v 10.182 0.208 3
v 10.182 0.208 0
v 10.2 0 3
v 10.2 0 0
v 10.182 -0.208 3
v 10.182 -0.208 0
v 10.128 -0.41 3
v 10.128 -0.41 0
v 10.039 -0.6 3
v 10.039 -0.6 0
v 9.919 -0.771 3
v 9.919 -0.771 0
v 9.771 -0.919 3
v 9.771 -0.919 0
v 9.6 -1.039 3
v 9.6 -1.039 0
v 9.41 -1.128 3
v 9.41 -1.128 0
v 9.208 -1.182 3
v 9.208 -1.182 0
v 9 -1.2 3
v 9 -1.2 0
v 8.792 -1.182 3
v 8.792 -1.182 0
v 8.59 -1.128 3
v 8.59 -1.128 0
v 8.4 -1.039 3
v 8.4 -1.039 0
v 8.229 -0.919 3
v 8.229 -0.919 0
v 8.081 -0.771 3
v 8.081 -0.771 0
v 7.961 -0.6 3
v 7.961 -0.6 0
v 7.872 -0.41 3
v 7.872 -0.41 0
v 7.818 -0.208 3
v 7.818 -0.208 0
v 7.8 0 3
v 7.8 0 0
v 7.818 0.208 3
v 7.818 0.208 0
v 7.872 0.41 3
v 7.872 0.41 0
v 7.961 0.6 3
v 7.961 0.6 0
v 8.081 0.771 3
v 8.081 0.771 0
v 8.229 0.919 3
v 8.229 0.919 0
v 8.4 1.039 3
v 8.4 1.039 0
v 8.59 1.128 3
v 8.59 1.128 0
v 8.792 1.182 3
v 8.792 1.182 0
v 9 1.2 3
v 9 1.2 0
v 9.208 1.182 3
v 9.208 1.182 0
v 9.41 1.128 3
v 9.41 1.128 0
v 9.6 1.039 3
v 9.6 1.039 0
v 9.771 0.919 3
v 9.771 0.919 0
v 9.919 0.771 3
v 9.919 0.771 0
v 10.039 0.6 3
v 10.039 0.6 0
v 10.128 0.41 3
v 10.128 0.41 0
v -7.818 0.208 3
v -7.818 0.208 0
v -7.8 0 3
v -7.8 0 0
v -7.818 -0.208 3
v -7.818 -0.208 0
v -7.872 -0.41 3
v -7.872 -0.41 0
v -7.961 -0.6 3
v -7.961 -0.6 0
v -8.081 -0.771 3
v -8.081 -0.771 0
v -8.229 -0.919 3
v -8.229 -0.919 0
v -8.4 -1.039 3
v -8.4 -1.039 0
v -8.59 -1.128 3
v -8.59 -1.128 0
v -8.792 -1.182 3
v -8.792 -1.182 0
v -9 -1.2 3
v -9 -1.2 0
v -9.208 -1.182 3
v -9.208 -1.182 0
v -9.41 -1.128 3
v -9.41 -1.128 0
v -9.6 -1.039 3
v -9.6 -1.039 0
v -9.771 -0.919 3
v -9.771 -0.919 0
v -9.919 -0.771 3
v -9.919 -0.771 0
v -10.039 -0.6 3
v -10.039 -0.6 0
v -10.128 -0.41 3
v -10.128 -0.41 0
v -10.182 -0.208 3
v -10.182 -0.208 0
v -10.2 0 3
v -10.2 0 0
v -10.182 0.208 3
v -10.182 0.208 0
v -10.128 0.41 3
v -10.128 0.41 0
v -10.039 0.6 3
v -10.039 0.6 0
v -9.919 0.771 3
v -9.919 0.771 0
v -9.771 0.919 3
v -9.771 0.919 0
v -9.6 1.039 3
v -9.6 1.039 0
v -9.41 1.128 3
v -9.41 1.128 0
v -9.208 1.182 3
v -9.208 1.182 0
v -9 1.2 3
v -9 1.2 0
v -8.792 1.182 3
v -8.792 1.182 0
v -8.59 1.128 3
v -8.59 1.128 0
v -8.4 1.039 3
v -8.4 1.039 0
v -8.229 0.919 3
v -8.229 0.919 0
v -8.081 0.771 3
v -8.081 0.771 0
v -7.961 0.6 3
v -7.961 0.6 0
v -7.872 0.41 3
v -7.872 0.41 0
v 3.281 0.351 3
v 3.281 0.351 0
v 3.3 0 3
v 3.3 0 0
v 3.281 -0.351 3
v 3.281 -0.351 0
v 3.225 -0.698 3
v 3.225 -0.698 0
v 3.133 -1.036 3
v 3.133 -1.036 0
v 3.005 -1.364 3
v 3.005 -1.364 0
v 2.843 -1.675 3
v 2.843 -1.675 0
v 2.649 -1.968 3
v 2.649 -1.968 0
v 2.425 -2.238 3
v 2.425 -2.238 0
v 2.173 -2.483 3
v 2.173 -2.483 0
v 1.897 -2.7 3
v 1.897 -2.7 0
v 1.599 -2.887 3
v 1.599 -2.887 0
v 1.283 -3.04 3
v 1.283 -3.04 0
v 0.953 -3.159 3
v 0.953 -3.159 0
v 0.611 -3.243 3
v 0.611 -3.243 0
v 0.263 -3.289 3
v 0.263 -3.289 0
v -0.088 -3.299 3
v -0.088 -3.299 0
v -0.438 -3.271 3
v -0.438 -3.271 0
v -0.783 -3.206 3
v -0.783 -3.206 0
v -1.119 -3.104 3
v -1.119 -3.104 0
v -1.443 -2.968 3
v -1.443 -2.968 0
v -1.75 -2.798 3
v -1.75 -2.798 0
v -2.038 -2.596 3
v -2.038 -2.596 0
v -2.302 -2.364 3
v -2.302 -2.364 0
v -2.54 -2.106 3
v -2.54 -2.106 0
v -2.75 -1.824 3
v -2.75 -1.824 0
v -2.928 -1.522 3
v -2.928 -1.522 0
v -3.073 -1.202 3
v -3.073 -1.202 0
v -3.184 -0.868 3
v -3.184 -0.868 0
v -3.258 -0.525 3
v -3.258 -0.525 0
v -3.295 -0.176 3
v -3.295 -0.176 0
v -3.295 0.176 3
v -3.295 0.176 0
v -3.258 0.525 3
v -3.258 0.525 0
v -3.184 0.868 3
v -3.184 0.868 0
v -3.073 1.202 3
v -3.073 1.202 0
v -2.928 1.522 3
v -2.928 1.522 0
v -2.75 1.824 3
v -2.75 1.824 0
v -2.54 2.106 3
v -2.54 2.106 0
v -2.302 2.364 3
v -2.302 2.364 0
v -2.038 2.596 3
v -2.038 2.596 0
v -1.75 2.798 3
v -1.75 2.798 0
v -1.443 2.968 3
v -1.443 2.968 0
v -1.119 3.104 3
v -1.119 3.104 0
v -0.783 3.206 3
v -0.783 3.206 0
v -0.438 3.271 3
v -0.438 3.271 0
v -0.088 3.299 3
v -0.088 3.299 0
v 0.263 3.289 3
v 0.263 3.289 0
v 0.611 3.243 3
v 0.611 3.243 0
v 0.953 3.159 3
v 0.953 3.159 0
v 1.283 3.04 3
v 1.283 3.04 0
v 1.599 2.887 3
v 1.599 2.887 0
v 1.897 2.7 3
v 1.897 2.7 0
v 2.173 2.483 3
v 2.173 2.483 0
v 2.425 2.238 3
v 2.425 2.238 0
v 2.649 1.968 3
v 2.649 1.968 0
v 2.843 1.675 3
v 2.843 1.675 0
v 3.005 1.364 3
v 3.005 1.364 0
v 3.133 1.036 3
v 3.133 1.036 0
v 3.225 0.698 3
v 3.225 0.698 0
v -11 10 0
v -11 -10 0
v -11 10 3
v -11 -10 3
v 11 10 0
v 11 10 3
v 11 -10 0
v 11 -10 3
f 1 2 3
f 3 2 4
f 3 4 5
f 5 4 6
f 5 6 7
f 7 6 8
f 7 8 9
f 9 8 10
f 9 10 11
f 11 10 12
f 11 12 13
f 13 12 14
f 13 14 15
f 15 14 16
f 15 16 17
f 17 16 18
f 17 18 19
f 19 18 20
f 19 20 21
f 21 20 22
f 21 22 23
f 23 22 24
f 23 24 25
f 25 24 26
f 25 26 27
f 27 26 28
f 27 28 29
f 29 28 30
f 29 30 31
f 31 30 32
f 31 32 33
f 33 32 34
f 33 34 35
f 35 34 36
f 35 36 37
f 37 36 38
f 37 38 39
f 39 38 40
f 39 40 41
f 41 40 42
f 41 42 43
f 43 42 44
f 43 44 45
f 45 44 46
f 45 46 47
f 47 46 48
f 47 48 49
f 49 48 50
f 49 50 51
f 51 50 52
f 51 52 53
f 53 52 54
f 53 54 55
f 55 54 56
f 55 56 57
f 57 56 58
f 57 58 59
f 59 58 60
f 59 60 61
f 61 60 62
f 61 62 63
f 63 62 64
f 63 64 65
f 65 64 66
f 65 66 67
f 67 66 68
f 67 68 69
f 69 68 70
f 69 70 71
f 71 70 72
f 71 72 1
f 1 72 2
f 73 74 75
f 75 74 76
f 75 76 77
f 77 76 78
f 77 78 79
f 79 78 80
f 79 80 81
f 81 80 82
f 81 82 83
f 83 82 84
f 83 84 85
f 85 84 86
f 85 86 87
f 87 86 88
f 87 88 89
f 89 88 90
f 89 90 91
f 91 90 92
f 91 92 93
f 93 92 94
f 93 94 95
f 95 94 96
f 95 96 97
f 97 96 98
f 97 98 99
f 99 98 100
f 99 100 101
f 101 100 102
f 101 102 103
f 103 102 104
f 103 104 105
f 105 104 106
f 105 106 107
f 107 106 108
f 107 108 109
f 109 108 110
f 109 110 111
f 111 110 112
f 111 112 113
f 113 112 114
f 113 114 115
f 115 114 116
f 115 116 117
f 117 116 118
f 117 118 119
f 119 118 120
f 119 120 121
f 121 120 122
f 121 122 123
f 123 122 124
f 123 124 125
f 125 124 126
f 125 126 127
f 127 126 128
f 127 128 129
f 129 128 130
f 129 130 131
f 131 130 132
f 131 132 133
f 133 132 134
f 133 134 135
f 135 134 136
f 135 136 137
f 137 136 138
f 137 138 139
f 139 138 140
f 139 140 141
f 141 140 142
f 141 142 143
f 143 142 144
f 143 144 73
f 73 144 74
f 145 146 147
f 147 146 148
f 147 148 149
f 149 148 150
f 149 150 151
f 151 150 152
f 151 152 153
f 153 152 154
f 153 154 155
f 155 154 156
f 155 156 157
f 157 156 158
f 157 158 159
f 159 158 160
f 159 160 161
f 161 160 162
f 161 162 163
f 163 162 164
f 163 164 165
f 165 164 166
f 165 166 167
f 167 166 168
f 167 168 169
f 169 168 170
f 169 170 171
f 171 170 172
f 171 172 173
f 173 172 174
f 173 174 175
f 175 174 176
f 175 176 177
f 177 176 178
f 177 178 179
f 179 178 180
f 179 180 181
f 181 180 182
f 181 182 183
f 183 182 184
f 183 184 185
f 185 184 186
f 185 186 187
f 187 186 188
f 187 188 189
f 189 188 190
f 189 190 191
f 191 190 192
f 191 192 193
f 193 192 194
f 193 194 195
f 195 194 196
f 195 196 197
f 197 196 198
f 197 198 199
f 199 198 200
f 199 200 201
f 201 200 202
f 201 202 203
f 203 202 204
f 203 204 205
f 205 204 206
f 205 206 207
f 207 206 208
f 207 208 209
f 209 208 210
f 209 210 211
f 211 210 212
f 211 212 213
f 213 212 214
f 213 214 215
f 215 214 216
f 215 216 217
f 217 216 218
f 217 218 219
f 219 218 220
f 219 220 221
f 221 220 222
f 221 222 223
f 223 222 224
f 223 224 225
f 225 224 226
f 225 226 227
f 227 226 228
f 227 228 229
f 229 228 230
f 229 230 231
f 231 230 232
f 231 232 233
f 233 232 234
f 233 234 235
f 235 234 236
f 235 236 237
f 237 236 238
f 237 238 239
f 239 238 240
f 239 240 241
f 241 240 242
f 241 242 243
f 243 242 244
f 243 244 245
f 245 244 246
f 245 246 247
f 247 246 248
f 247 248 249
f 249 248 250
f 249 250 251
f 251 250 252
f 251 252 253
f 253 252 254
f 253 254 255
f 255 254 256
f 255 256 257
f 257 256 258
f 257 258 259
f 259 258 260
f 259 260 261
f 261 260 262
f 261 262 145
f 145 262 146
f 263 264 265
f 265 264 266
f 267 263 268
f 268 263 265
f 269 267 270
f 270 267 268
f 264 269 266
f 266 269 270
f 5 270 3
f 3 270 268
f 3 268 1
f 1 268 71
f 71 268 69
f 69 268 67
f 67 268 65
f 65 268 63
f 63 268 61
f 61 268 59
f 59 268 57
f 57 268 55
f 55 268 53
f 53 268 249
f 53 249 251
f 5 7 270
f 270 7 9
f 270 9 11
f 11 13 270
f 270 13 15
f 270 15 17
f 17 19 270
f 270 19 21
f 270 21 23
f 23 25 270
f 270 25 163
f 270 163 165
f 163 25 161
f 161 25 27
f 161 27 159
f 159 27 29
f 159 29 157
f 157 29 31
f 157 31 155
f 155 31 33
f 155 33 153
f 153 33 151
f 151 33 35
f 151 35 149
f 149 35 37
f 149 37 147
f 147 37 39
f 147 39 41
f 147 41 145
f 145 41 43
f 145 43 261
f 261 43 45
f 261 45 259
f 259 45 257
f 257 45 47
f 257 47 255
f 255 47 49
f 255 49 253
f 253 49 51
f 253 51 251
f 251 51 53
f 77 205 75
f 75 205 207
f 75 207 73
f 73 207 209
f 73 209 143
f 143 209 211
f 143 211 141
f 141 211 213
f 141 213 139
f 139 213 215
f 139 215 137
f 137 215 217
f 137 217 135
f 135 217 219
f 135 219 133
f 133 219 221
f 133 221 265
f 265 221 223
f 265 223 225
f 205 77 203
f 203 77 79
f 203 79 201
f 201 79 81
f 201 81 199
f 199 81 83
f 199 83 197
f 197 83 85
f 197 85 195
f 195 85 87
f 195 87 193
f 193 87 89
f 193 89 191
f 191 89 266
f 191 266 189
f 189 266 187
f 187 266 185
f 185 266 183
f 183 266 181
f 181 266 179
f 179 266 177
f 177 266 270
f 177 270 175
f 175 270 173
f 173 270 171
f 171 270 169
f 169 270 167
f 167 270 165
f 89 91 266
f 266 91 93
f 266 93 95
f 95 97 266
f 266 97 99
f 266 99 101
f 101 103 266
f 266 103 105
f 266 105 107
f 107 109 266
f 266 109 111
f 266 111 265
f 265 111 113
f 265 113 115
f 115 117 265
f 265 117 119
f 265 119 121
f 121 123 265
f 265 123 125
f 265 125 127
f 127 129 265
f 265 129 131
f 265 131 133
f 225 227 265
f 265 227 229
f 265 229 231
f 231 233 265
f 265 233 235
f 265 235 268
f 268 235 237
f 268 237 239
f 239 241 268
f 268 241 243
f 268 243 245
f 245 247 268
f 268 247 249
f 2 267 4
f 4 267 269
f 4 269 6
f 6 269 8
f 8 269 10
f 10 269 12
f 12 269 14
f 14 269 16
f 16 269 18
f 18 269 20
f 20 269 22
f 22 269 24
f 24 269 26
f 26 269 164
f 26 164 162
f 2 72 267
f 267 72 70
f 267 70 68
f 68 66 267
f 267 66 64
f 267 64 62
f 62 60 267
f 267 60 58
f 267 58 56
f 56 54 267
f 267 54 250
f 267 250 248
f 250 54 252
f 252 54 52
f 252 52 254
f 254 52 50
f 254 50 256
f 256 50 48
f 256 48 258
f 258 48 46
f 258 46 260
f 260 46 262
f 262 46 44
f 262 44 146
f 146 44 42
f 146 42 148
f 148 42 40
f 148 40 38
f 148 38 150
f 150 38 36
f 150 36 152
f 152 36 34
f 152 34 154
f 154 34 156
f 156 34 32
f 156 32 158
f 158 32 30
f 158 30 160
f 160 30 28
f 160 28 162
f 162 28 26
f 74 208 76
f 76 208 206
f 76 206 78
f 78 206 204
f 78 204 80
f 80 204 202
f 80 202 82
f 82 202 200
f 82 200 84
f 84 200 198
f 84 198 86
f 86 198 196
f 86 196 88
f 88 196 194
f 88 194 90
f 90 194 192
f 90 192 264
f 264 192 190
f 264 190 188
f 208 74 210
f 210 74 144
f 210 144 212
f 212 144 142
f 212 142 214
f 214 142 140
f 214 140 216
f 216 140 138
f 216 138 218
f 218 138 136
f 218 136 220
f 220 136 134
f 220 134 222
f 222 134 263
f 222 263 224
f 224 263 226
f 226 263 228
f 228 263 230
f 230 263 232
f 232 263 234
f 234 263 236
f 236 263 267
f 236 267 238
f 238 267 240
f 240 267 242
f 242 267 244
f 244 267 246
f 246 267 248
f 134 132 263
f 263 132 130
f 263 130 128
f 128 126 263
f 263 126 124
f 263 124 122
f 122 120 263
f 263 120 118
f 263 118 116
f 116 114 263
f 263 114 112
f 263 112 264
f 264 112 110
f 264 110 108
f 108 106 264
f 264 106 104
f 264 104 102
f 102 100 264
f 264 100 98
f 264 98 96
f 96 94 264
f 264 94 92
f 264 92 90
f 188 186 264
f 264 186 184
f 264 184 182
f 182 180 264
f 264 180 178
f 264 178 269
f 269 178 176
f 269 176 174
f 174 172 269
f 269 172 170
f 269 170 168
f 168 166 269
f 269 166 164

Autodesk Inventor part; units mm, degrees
ref_plane "YZ Plane" through (0, 0, 0) normal (1, 0, 0) x (0, 1, 0)
ref_plane "XZ Plane" through (0, 0, 0) normal (0, 1, 0) x (-1, 0, 0)
ref_plane "XY Plane" through (0, 0, 0) normal (0, 0, 1) x (1, 0, 0)
sketch "Skizze1" plane through (0, 0, 0) normal (0, 0, 1) x (1, 0, 0)
  line L0 (-11, -10) -> (11, -10)
  line L1 (11, -10) -> (11, 10)
  line L2 (11, 10) -> (-11, 10)
  line L3 (-11, 10) -> (-11, -10)
extrude "Extrusion1" add sketch "Skizze1" along normal blind 3
sketch "Skizze2" plane through (0, 0, 0) normal (0, 0, 1) x (1, 0, 0)
  circle A0 centre (0, 0) radius 3.3
extrude "Extrusion2" cut sketch "Skizze2" along normal blind 3.2
sketch "Skizze3" plane through (0, 0, 0) normal (0, 0, 1) x (1, 0, 0)
  circle A0 centre (-9, 0) radius 1.2
extrude "Extrusion3" cut sketch "Skizze3" along normal blind 3.2
sketch "Skizze4" plane through (0, 0, 0) normal (0, 0, 1) x (1, 0, 0)
  circle A0 centre (9, 0) radius 1.2
extrude "Extrusion4" cut sketch "Skizze4" along normal blind 3.2
properties part number "Taststift_Kappe"
